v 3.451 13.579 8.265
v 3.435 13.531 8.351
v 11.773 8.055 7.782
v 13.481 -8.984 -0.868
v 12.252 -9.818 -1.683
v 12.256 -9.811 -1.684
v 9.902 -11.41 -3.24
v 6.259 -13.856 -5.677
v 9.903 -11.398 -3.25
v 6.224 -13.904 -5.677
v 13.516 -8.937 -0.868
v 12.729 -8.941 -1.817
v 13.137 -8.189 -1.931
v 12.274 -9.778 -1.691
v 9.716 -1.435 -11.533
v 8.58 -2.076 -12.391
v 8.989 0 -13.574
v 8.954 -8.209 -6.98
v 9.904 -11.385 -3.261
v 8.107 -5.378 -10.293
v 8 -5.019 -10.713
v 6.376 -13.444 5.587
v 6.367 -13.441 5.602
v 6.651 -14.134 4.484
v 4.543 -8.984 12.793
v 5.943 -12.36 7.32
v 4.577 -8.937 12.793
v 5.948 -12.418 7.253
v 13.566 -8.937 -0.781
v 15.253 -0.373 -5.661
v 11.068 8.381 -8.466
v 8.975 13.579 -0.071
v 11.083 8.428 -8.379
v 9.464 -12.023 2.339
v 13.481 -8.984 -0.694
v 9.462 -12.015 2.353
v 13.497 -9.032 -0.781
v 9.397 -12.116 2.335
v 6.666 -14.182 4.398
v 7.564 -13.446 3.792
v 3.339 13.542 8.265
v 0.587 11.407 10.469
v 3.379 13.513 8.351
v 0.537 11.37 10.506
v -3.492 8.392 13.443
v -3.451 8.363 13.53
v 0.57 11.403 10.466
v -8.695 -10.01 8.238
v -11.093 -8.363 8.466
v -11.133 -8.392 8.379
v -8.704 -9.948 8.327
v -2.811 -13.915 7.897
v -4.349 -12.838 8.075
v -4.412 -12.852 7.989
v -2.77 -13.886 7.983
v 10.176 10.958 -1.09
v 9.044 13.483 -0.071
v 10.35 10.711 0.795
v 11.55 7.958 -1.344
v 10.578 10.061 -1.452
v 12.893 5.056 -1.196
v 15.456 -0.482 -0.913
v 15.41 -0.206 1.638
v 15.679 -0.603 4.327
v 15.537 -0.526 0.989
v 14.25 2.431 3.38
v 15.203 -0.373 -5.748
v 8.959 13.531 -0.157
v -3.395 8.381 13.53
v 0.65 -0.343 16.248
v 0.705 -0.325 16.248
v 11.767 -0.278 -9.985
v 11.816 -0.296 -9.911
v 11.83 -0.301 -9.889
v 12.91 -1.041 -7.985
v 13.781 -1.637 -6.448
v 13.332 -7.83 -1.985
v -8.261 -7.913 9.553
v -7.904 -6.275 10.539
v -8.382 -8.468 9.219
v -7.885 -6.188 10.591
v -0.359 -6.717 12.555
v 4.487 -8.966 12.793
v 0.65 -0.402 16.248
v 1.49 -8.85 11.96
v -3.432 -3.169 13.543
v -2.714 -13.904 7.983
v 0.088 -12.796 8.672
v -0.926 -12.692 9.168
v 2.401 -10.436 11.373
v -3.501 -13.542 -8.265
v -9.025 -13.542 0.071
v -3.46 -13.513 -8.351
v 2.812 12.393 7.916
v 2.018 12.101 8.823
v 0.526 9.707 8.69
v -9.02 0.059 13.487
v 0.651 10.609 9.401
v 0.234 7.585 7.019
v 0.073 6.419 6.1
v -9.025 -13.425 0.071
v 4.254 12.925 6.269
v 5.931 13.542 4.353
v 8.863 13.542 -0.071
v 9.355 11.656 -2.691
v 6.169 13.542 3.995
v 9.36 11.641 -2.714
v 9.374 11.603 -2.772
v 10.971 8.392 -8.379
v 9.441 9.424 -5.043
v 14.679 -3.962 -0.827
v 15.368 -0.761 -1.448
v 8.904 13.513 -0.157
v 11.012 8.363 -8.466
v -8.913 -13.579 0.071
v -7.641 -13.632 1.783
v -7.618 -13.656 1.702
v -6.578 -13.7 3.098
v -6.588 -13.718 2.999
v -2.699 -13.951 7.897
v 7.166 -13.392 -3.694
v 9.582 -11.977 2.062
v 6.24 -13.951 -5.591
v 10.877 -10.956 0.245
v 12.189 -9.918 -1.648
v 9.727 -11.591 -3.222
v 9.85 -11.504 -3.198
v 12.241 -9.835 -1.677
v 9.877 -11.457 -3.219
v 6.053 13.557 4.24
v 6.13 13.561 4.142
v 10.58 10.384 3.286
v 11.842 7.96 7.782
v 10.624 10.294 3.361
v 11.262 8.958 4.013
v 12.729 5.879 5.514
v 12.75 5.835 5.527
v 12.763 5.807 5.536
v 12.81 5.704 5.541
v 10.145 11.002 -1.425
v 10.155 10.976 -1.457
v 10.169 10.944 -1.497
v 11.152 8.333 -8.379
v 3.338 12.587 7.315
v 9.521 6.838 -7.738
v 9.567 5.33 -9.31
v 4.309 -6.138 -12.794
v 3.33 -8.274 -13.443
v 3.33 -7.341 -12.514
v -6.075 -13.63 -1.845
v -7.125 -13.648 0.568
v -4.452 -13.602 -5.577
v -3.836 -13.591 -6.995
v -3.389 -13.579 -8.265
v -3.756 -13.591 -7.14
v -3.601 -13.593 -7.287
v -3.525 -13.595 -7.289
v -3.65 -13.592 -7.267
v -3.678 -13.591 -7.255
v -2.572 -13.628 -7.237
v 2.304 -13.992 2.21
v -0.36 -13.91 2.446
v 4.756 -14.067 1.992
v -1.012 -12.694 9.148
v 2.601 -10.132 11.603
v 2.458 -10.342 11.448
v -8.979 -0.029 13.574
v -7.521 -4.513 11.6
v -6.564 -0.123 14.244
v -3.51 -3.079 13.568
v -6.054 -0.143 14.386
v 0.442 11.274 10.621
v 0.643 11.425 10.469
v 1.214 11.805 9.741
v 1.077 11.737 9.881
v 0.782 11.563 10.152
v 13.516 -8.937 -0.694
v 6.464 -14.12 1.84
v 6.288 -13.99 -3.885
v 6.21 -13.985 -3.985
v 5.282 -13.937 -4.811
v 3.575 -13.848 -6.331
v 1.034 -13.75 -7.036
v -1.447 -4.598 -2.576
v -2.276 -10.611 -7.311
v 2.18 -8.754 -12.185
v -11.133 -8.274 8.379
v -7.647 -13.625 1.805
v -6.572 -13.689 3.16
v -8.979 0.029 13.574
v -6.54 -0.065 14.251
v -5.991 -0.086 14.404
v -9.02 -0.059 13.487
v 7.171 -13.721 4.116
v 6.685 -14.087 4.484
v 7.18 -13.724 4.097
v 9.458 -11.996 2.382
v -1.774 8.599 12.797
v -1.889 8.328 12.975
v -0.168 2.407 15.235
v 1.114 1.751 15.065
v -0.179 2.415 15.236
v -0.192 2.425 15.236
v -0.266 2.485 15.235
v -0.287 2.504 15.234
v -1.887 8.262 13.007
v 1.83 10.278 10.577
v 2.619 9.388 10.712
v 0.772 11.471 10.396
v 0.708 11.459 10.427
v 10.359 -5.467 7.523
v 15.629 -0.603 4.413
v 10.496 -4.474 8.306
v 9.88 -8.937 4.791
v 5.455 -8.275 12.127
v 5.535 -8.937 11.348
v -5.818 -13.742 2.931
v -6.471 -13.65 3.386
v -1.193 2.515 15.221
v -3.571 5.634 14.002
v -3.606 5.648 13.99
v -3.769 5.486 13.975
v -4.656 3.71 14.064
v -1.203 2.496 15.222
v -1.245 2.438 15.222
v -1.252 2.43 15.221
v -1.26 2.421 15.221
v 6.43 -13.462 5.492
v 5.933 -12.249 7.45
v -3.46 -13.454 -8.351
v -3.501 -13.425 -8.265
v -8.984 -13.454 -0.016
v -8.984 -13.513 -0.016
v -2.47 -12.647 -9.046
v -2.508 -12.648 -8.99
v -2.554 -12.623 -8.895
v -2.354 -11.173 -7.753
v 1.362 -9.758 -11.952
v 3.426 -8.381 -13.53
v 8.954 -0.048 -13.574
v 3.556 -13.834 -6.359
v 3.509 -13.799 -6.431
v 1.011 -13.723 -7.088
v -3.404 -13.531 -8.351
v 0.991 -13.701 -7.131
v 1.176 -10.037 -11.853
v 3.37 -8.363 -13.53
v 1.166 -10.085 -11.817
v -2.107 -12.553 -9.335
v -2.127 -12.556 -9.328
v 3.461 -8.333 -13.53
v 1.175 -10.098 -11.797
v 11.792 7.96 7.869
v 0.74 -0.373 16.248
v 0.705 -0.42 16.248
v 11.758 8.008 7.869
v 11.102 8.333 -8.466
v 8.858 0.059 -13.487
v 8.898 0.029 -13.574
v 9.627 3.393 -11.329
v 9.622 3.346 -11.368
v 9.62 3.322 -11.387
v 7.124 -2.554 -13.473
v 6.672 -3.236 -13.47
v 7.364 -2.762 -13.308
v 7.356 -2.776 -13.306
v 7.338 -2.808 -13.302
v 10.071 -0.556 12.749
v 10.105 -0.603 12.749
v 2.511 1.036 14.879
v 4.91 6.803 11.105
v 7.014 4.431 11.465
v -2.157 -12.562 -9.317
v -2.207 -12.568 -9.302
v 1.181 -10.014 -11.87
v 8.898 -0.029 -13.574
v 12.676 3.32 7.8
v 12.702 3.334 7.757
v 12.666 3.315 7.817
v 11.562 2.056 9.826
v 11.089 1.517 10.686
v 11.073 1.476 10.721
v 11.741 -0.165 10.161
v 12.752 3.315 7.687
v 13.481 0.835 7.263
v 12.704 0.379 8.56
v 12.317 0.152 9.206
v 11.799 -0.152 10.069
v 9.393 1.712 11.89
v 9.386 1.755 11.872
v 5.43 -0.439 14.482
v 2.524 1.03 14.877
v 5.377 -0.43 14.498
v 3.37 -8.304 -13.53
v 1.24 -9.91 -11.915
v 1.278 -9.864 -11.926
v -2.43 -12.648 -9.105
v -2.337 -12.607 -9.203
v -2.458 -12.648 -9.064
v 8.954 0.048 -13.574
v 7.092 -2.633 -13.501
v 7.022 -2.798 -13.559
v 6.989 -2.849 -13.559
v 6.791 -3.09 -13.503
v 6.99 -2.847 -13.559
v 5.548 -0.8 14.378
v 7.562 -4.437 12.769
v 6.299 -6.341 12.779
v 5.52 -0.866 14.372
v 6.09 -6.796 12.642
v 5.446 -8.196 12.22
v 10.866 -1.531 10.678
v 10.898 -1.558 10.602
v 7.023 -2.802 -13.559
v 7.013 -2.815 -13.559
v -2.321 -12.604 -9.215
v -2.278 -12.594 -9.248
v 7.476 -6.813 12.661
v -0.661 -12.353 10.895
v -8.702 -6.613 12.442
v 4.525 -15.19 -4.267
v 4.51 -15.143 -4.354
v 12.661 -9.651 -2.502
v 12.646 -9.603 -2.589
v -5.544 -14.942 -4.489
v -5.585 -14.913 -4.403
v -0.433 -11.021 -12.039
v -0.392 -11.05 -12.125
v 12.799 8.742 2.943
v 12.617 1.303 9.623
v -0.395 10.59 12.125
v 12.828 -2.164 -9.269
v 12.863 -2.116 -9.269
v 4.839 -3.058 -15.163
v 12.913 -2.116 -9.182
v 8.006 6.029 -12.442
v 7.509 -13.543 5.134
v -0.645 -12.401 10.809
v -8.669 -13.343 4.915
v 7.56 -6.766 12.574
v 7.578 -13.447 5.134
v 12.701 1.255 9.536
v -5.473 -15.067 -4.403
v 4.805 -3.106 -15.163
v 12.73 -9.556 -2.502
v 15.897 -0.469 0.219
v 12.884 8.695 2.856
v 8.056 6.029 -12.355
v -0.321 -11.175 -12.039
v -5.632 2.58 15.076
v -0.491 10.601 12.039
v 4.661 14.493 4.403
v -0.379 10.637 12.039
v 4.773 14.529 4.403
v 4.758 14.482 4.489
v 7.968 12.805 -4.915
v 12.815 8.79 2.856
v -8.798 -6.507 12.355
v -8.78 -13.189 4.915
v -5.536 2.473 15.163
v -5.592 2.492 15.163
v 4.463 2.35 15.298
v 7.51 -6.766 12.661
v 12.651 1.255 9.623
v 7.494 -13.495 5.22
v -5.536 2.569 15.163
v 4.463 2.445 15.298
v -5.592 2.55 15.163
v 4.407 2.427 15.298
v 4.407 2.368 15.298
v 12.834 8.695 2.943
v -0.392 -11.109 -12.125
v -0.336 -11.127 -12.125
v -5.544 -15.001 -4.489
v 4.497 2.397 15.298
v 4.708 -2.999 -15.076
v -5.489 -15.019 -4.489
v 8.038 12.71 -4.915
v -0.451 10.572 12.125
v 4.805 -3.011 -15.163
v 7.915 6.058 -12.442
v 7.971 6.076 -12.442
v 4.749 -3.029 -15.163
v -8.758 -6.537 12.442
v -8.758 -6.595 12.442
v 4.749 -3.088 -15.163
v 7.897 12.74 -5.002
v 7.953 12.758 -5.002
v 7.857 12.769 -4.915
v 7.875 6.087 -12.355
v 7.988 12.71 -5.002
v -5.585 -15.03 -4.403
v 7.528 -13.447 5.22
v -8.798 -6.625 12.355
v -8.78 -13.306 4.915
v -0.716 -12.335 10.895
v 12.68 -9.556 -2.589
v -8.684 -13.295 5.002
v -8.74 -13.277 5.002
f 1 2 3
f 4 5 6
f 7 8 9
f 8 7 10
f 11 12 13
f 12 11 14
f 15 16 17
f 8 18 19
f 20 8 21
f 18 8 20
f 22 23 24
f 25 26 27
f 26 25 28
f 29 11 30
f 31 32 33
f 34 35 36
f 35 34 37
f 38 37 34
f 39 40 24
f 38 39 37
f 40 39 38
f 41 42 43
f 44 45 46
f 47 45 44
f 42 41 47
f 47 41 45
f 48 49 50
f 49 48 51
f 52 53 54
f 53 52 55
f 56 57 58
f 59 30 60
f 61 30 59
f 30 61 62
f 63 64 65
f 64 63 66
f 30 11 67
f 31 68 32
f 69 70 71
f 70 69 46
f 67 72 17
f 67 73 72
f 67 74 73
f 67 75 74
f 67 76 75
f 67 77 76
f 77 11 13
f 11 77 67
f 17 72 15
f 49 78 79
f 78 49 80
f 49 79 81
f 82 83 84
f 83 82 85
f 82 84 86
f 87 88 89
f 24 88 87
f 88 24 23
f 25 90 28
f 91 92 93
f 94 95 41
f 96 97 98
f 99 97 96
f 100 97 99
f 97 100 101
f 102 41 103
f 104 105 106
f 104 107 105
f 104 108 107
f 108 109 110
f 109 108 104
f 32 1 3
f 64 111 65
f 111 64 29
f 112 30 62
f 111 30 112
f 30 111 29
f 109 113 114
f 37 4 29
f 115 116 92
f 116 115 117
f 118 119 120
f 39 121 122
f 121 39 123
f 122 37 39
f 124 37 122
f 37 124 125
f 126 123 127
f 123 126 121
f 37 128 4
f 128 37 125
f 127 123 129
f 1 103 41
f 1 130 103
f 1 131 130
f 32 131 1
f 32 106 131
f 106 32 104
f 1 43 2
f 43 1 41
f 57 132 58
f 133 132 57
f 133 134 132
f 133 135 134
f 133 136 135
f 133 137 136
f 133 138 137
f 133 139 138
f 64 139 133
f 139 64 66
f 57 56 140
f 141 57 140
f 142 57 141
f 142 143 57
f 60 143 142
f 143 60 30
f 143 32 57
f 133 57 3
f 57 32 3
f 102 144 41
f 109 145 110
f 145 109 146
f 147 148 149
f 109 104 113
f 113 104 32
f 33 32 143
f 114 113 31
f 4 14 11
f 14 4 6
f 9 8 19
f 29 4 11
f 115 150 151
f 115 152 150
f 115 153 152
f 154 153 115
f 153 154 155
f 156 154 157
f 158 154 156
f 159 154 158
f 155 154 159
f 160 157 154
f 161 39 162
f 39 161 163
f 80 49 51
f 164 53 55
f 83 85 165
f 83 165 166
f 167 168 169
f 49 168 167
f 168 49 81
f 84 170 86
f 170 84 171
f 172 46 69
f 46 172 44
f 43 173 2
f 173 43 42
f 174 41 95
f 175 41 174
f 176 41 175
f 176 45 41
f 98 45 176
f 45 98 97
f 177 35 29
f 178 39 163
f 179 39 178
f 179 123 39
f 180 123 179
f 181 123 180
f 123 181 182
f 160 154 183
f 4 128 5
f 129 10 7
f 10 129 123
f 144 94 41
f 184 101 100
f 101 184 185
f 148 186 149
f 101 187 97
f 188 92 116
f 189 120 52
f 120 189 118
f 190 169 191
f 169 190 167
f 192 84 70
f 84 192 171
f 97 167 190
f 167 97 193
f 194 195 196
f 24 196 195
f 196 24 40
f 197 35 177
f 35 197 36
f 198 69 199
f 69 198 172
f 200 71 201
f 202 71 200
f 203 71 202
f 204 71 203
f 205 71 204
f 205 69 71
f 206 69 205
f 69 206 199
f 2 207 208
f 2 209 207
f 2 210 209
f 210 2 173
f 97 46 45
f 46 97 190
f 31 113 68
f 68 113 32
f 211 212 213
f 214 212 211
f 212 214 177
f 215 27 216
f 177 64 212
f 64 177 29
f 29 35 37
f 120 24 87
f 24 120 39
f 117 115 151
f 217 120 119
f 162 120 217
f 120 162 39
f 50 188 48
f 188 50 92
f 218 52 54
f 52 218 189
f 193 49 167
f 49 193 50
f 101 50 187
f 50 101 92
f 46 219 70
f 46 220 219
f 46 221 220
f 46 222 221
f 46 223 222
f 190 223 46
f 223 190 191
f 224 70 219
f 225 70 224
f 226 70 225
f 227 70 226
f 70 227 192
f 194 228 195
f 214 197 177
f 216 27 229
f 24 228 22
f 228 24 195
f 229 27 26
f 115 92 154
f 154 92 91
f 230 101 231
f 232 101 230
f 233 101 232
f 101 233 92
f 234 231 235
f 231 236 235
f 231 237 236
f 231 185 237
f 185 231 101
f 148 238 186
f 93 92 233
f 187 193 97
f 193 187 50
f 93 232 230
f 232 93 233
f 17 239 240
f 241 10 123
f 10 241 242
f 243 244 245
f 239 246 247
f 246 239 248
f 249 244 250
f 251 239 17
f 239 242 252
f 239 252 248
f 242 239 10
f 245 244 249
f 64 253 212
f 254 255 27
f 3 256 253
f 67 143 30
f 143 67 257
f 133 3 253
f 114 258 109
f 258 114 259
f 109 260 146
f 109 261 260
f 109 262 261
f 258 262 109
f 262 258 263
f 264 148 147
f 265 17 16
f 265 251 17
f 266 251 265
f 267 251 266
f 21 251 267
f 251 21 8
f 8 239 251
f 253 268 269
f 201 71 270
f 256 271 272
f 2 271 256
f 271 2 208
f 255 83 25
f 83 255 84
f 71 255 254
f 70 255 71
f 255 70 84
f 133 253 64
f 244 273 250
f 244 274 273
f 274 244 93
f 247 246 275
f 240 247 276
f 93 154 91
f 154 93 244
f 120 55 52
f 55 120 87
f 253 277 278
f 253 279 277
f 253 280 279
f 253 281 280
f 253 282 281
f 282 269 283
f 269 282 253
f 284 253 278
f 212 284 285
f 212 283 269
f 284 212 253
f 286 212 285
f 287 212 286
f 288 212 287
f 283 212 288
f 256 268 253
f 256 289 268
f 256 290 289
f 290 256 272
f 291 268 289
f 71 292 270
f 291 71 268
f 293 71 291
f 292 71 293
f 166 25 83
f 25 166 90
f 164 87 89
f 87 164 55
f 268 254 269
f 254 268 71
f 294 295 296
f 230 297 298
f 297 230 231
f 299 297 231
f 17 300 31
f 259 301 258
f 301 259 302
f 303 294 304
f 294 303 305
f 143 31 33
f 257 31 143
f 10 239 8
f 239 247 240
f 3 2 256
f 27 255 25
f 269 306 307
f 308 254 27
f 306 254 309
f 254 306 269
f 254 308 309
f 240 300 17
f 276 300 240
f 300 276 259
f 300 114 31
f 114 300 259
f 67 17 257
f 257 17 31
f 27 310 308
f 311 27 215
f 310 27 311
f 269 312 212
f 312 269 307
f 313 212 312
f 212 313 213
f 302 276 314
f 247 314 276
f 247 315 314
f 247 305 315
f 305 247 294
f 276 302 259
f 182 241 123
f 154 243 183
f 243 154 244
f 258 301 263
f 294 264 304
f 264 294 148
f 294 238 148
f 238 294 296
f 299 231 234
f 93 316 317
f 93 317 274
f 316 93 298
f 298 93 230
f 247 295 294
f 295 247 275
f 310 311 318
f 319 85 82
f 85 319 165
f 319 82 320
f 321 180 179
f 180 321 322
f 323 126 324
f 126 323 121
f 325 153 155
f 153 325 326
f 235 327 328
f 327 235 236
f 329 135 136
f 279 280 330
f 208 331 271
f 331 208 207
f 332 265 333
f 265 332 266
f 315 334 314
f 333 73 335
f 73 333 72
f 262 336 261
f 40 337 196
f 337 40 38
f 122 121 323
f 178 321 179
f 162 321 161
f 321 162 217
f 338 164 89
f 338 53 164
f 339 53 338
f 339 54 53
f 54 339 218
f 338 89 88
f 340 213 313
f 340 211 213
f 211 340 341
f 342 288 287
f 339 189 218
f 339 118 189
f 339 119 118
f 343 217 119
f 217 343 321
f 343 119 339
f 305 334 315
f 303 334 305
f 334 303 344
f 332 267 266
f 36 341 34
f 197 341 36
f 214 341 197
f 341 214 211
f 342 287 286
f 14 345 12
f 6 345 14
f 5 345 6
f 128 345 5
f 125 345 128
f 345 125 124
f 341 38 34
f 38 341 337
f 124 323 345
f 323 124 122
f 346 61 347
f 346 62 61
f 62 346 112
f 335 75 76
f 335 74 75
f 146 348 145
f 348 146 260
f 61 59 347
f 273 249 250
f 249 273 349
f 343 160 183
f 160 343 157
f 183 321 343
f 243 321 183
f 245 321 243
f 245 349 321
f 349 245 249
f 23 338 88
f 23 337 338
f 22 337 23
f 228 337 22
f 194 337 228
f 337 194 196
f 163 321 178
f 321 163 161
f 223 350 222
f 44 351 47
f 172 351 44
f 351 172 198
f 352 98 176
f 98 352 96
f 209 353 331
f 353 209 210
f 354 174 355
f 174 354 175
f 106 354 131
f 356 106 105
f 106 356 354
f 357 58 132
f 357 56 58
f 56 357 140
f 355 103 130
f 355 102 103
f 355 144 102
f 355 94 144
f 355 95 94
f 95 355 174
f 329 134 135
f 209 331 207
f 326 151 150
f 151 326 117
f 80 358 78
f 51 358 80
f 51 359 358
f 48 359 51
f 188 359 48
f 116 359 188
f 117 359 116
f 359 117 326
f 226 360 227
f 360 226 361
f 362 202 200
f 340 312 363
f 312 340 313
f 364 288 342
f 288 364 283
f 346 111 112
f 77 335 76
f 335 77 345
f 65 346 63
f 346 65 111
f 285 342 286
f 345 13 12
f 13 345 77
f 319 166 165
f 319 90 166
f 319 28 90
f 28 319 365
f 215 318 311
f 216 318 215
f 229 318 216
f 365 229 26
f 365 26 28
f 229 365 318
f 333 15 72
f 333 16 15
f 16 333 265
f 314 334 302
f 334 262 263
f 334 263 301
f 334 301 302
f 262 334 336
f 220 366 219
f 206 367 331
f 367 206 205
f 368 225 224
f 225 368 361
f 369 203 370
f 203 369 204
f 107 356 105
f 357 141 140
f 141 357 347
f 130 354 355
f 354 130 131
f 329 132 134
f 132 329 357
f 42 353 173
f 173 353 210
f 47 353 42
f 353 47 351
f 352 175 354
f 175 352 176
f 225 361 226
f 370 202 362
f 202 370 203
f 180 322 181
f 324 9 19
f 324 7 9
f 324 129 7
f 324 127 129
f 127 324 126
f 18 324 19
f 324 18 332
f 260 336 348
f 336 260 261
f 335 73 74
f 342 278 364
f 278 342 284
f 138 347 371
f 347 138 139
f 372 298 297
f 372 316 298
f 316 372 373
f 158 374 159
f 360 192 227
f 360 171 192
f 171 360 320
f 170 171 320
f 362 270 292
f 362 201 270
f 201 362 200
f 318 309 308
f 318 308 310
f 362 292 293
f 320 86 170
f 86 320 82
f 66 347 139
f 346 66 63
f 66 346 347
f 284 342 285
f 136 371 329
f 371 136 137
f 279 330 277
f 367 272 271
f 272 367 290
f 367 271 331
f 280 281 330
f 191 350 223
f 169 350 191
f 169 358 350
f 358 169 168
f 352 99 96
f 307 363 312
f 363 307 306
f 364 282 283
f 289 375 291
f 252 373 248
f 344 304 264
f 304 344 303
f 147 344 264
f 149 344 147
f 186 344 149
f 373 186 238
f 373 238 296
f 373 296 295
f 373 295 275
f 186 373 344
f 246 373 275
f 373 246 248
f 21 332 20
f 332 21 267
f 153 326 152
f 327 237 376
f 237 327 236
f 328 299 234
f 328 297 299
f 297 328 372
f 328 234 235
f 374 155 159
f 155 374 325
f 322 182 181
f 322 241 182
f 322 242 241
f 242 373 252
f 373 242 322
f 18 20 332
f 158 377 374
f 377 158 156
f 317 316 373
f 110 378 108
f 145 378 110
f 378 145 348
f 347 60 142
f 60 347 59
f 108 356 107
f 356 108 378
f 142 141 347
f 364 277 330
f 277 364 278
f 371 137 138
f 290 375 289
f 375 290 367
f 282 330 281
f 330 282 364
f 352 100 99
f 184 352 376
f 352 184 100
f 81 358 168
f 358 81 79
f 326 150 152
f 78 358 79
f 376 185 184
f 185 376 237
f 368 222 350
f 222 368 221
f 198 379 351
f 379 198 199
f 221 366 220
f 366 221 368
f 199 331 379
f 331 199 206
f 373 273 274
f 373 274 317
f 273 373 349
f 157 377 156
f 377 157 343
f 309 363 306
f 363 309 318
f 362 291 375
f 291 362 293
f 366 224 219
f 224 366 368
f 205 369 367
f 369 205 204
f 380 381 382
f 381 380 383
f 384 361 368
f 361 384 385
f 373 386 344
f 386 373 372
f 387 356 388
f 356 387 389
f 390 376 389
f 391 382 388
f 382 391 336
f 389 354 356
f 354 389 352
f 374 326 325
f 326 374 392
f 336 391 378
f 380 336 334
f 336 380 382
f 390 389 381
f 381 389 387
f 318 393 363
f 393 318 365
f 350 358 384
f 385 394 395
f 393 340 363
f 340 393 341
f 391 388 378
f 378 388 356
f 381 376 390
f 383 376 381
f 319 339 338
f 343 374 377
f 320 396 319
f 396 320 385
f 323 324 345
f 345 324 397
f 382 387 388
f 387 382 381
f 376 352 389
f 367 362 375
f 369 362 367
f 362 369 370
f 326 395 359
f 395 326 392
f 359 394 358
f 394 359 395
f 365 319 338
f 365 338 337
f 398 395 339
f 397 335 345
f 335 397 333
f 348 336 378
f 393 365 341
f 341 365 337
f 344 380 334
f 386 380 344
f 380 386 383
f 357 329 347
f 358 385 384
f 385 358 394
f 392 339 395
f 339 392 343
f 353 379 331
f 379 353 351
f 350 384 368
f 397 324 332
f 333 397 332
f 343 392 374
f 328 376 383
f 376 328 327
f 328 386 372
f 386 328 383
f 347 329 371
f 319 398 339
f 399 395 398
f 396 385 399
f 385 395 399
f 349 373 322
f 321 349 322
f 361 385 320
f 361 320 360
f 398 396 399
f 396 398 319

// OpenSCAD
// Auto-generated OpenSCAD file

    inner_points = 10*[[-0.555121029674517, 0.252097973557222, 1.5076139678747007], [0.4789306739060282, -0.30582094958318945, -1.5076139678747007], [1.2783614762453286, 0.8694628743494993, 0.2856195091084527], [0.7478183893280848, -1.344745490869777, 0.5133766732484469], [0.44471109692947597, 0.23973508482260844, 1.52113719207135], [-0.8717455572000972, -0.6565892775398746, 1.235517682962897], [-0.04101019982741844, 1.0542321918178703, 1.203852958972461], [1.2812764981885028, -0.21163080548135457, -0.9182334498640081], [-0.03518015594107033, -1.1079551678438375, -1.203852958972461], [0.7955552014316083, 0.6028663015139072, -1.235517682962897], [0.7460168066892514, -0.6765928517116128, 1.2573987193505602], [-0.06759815027878918, -1.230551772596204, 1.0808761548714765], [1.2630426584795242, -0.9555523132818186, -0.25021524852414045], [0.44942770151148353, -1.50951123416641, -0.42673781300322433], [1.26012763653635, 0.1255413665490355, 0.9536377104483202], [-0.8699439745612638, -1.324741916698039, 0.49149563686078374], [0.4742140693240208, 1.443425369405829, 0.44026103719987336], [1.5796671860051041, -0.04686506218472162, 0.0218810363876632], [-0.5504044250925096, -1.4971483454317962, -0.44026103719987336], [0.793753618792775, 1.2710189406720718, -0.49149563686078374]];

    outer_points = 10*[[-0.8938608578754866, 0.0, 1.3487204141363005], [0.8938608578754866, 0.0, -1.3487204141363005], [1.174206570281529, 0.7960365198874888, 0.7782022732317085], [0.6635402669135327, -1.408673080510631, 0.439759542453489], [0.06899987944129649, -0.03728566145254908, 1.6161320443692175], [-1.1052066908402325, -0.8333221813400379, 0.8379297711375091], [-0.341090558415444, 0.8333221813400379, 1.344345700255859], [1.515297128696973, -0.03728566145254908, -0.5661434270241504], [0.341090558415444, -0.8333221813400379, -1.344345700255859], [1.1052066908402325, 0.8333221813400379, -0.8379297711375091], [0.4527347085711068, -0.8936516488632841, 1.2706108778413883], [-0.2729648616763203, -1.3856292744399337, 0.7896554228617598], [1.3465955664465934, -0.8936516488632841, -0.07810953629491224], [0.6208959961991664, -1.3856292744399337, -0.5590649912745407], [1.0055050080311494, -0.060329467523246194, 1.2662361639609467], [-0.8944011324978067, -1.3483436129873847, 0.007078435749609924], [0.3419647411176168, 1.3483436129873847, 0.8264766215074579], [1.5579413994113391, -0.060329467523246194, 0.43268110670387905], [-0.3419647411176168, -1.3483436129873847, -0.8264766215074579], [0.8944011324978067, 1.3483436129873847, -0.007078435749609924]];

    // Convex hull for inner set (I)
    module inner_hull() {
        hull() {
            for (p = inner_points) {
                translate(p) sphere(r=0.1);
            }
        }
    }

    // Convex hull for outer set (O) minus inner hull (O \ I)
    module outer_minus_inner() {
        difference() {
            hull() {
                for (p = outer_points) {
                    translate(p) sphere(r=0.1);
                }
            }
            inner_hull(); // Subtract inner hull
        }
    }

    // Convex hull for outer set (O) minus all translated inner hulls
    module outer_minus_AllTranslationInner() {
        difference() {
            hull() {
                for (p = outer_points) {
                    translate(p) sphere(r=0.1);
                }
            }
            hull() {
                translate([0,0,50]) inner_hull();
                translate([0,0,-50]) inner_hull();
            }; // Subtract translated inner hulls
        }
    }

    // Difference between outer_minus_inner and outer_minus_AllTranslationInner
    module outer_minus_inner_diff() {
        difference() {
            // Outer minus inner
            difference() {
                hull() {
                    for (p = outer_points) {
                        translate(p) sphere(r=0.1);
                    }
                }
                inner_hull();
            }

            // Subtract Outer minus AllTranslationInner
            difference() {
                hull() {
                    for (p = outer_points) {
                        translate(p) sphere(r=0.1);
                    }
                }
                hull() {
                    translate([0,0,50]) inner_hull();
                    translate([0,0,-50]) inner_hull();
                };
            }
        }
    }

    // Rendering all with colors applied
    color([1, 0, 0, 0.5]) inner_hull(); // Transparent red
    color([0, 1, 0, 1]) outer_minus_AllTranslationInner(); // Opaque green
    color([1, 1, 0, 1]) outer_minus_inner_diff(); // Opaque yellow
    
